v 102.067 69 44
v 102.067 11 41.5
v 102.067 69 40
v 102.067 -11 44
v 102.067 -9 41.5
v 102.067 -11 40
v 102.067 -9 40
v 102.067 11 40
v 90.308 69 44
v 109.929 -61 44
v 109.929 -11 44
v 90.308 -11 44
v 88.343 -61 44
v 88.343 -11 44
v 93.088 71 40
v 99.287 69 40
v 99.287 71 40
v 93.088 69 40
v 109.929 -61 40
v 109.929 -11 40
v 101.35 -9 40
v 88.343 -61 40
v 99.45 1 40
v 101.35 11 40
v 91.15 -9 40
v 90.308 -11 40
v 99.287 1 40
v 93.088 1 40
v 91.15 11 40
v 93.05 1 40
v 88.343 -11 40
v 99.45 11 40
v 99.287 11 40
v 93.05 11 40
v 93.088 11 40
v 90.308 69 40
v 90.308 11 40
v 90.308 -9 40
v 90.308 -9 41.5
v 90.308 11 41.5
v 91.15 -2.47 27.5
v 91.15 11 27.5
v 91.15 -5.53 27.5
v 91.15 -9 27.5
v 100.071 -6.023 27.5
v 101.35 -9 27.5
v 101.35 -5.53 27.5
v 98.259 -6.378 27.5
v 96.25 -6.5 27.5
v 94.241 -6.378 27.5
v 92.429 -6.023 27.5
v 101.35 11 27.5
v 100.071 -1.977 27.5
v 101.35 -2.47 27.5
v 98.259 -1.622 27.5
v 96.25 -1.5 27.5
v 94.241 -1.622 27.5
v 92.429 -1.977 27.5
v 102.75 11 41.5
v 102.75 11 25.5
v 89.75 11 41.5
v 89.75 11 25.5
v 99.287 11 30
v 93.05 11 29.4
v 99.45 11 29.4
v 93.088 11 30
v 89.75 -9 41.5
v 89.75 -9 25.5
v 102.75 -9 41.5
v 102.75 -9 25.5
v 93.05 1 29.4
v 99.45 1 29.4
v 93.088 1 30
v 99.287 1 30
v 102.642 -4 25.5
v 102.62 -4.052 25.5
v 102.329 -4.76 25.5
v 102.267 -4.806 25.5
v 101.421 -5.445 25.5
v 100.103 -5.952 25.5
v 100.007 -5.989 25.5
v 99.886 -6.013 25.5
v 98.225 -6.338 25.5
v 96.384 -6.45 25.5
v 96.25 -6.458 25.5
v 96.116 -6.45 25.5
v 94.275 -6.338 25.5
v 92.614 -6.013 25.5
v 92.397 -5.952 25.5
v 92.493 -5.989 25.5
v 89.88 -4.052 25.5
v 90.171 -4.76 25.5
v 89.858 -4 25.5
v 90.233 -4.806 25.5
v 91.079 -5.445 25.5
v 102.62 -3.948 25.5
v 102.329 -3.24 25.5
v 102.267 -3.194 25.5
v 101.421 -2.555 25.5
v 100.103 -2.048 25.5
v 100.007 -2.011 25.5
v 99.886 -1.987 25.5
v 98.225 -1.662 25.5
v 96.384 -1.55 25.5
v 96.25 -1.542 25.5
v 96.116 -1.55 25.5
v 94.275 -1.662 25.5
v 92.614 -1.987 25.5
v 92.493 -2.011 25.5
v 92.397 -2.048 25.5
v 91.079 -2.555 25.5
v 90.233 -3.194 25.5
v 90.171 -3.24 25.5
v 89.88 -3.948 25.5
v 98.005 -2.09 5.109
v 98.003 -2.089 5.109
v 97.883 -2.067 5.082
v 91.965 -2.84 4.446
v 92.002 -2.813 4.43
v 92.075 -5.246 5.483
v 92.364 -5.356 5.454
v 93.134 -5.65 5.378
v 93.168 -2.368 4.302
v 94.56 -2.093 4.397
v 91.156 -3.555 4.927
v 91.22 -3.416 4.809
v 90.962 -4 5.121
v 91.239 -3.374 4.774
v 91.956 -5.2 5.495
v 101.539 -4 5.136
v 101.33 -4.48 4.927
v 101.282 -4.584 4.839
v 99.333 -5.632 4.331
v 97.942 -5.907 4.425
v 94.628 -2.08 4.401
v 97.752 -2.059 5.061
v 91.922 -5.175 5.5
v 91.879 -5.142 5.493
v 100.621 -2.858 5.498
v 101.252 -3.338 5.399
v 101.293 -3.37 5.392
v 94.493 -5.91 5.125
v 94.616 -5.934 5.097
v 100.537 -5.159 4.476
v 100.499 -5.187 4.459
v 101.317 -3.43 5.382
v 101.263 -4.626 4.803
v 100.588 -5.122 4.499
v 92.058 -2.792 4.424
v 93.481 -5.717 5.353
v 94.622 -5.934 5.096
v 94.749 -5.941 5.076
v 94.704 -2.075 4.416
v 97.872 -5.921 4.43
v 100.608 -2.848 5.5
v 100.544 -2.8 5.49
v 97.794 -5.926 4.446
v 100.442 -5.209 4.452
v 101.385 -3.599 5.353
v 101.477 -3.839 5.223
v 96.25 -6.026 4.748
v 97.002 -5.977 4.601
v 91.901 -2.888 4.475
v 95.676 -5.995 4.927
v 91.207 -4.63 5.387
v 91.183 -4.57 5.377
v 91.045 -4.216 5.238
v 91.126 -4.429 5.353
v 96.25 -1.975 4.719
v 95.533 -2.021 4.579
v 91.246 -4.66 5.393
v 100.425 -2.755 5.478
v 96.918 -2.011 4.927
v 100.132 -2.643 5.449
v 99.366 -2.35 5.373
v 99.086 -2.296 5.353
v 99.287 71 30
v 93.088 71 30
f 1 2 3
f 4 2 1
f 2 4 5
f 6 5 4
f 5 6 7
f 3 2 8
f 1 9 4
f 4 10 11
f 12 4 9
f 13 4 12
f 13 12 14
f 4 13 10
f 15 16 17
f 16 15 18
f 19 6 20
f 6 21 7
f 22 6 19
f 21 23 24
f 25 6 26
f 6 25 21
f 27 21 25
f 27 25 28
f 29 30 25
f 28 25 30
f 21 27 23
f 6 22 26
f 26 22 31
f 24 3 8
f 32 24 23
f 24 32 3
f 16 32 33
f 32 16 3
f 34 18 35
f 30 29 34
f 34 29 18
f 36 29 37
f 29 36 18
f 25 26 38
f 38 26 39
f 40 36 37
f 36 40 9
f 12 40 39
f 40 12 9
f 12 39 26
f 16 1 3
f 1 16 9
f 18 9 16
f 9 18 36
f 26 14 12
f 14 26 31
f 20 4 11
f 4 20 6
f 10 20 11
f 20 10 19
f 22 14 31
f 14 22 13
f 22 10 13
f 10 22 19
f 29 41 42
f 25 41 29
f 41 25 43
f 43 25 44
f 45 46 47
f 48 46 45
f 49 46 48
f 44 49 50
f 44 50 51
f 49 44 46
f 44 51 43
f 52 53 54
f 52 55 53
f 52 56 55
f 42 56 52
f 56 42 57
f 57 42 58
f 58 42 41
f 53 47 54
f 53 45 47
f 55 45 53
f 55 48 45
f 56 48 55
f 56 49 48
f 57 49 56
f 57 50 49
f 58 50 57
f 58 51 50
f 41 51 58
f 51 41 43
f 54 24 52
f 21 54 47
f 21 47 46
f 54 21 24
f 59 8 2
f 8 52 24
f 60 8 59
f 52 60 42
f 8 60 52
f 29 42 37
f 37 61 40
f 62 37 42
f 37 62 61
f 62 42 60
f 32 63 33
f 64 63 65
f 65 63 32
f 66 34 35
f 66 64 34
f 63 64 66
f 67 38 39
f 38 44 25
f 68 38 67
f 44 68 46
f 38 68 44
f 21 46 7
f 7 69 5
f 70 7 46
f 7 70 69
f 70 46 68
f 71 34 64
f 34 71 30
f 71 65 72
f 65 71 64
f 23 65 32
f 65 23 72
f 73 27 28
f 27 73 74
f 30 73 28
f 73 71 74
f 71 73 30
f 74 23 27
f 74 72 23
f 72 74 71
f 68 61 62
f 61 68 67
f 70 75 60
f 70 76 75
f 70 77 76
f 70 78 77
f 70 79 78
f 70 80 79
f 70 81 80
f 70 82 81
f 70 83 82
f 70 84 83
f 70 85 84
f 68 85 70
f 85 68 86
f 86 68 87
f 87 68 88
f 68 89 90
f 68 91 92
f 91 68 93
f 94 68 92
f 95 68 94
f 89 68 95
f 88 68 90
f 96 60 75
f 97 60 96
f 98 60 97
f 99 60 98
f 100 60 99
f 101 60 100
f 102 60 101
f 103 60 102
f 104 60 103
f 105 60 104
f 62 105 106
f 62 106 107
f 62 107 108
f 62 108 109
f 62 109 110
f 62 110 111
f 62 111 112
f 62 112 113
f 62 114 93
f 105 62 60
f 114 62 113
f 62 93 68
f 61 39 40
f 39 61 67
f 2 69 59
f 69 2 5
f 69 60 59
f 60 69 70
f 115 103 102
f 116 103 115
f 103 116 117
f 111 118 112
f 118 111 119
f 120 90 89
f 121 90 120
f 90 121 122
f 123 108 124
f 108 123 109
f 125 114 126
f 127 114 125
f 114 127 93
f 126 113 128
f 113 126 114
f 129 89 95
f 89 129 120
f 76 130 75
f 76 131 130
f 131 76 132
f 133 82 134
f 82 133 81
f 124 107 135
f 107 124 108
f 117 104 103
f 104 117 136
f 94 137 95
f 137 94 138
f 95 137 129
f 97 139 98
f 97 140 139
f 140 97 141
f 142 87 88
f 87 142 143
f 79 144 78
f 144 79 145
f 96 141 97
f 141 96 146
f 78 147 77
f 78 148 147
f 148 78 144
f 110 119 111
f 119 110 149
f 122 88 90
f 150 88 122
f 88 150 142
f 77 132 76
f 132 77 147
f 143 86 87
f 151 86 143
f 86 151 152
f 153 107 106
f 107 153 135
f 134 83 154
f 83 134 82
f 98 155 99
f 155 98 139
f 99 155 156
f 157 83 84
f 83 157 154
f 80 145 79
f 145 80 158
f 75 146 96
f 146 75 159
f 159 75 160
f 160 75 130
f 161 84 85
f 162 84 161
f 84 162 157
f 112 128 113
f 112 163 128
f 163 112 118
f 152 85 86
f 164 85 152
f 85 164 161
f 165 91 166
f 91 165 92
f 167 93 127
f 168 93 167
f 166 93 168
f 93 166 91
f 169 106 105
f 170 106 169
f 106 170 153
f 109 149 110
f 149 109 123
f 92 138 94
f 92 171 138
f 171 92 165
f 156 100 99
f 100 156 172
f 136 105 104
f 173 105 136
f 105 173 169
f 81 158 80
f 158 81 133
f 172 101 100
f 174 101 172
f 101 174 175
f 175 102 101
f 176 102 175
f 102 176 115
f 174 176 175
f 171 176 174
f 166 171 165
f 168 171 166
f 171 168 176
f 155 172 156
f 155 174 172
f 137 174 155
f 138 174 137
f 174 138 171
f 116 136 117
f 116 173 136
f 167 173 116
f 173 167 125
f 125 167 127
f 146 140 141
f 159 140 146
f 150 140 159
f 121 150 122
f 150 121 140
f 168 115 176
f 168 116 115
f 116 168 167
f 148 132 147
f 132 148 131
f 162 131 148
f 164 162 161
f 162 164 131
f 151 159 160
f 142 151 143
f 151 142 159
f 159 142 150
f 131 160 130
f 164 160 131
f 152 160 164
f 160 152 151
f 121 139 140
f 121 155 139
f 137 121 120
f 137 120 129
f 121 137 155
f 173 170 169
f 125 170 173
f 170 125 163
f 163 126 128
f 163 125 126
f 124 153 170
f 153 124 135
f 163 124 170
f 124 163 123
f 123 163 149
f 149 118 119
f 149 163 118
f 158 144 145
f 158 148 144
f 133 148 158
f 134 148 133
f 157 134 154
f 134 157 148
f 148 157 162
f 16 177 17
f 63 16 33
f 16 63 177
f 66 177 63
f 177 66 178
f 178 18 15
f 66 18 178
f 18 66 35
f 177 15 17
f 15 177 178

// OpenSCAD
// file: irkem_hammerTips_v1.scad
tol = 0.2;
extrWall = 1.7+tol;
extrH = 12.9+tol;//12.6+tol;
extrW = 10+tol;

hammerY = 20;
hammerZ = 24;

$fn = 20;

module hammerTips(){
//Strike cylinder:
//v1: made elliptical and added skew-angle indentation to:
//      1. Avoid hitting adjacent strings
//      2. Maximize likelihood of striking proper string
//      3. Ensure that hammer tip force on the string is centering
//Prior cone geometry resulted in adjacent string strikes in y axis for most keys
    difference(){
        translate([0,-5,0]) scale([2.6,1,1]) cylinder(hammerZ,2.5,2);
        translate([-12,-1.8,25]) rotate([0,90,-15]) cylinder(hammerZ,3,3);
    }
difference(){
    translate([-6.5,-10,-14]) cube([13,hammerY,16]);
    union(){uChan();translate([-extrW/2,-hammerY/2,-extrH]) cube([extrW,hammerY/2,extrH]);
}
}
module uChan(){
difference(){
    translate([-extrW/2,-hammerY/2,-extrH]) cube([extrW,hammerY,extrH]);
    translate([-extrW/2+extrWall,-hammerY/2,-extrH-extrWall]) cube([extrW-2*extrWall,hammerY,extrH]);
}
}
}

//hammerTips();
// main file
include <irkem_hammerTips_v1.scad>

xO = -6;
yO = -11;
zO = 40;

kH = 4;
bH = 10;
wL = 50;
bL = 80;
oct = 6.5 * 25.4;
gap = 2;
n_oct = 1;//5;
n_keys = 12 * n_oct;
oset = -1;

sharpFlag = 1;

for (k = [7]){//:1:(n_keys-1)]){
    //
    translate([k*13.75+6.0+xO,12+yO,-12.5+zO]) rotate([0,180,0]) hammerTips();
}

for (k = [0:1:(n_oct-1)]){

//C:
//color("ivory") translate([k*oct+0+xO,0+yO,0+zO]) cube([oct*1/12-gap,bL,kH]);
//color("ivory") translate([k*oct+0+xO,-wL+yO,0+zO]) cube([oct*1/7-gap,wL,kH]);

////C#:
//if (sharpFlag){    
//color("black") translate([k*oct+oct*1/12+xO,gap+yO,0+zO]) cube([oct*1/12-gap,bL,kH+bH]);
//}//

////D:
//color("ivory") translate([k*oct+oct*2/12+xO,0+yO,0+zO]) cube([oct*1/12-gap,bL,kH]);
//color("ivory") translate([k*oct+oct*1/7+xO,-wL+yO,0+zO]) cube([oct*1/7-gap,wL,kH]);//

////D#:
//if (sharpFlag){
//color("black") translate([k*oct+oct*3/12+xO,gap+yO,0+zO]) cube([oct*1/12-gap,bL,kH+bH]);
//}//

////E:
//color("ivory") translate([k*oct+oct*4/12+xO,0+yO,0+zO]) cube([2+oct*1/12-gap,bL,kH]);
//color("ivory") translate([k*oct+oct*2/7+xO,-wL+yO,0+zO]) cube([oct*1/7-gap,wL,kH]);//

////F:
//color("ivory") difference(){
//    translate([k*oct+oct*3/7+xO,-wL+yO,0+zO]) cube([oct*1/7-gap,wL+bL,kH]);
//    translate([k*oct+oct*6/12-2+xO,0+yO,0+zO]) cube([4+oct*(1/7-1/12)-gap,bL,kH]);
//}
//color("ivory") translate([k*oct+oct*3/7+xO,-wL+yO,0+zO]) cube([oct*1/7-gap,wL,kH]);//

////F#:
//if (sharpFlag){
//color("black") translate([k*oct+oct*6/12+xO,gap+yO,0+zO]) cube([oct*1/12-gap,bL,kH+bH]);
//}//

////G:
color("ivory") translate([k*oct+oct*7/12+xO,0+yO,0+zO]) cube([oct*1/12-gap,bL,kH]);
color("ivory") translate([k*oct+oct*4/7+xO,-wL+yO,0+zO]) cube([oct*1/7-gap,wL,kH]);//

////G#:
//if (sharpFlag){
//color("black") translate([k*oct+oct*8/12+xO,gap+yO,0+zO]) cube([oct*1/12-gap,bL,kH+bH]);
//}//

////A:
//color("ivory") translate([k*oct+oct*9/12+xO,0+yO,0+zO]) cube([oct*1/12-gap,bL,kH]);
//color("ivory") translate([k*oct+oct*5/7+xO,-wL+yO,0+zO]) cube([oct*1/7-gap,wL,kH]);//

////A#:
//if (sharpFlag){
//color("black") translate([k*oct+oct*10/12+xO,gap+yO,0+zO]) cube([oct*1/12-gap,bL,kH+bH]);
//}//

////B:
//color("ivory") translate([k*oct+oct*11/12+xO,0+yO,0+zO]) cube([oct*1/12-gap,bL,kH]);
//color("ivory") translate([k*oct+oct*6/7+xO,-wL+yO,0+zO]) cube([oct*1/7-gap,wL,kH]);//

}

for (i = [7]){//,2,4,5,7,9,11]){//[0:1:(n_keys-1)]){
    translate([oset+oct*i/12+(oct*1/12-6.2)/2+xO,2+10+yO,-10+zO]) cube([6.2,bL-10,10]);
}

//if (sharpFlag){
//    for (i = [1,3,6,8,10]){//[0:1:(n_keys-1)]){
//    translate([oset+oct*i/12+(oct*1/12-6.2)/2+xO,2+10+yO,-10+zO]) cube([6.2,bL-10,10]);
//}
//}
